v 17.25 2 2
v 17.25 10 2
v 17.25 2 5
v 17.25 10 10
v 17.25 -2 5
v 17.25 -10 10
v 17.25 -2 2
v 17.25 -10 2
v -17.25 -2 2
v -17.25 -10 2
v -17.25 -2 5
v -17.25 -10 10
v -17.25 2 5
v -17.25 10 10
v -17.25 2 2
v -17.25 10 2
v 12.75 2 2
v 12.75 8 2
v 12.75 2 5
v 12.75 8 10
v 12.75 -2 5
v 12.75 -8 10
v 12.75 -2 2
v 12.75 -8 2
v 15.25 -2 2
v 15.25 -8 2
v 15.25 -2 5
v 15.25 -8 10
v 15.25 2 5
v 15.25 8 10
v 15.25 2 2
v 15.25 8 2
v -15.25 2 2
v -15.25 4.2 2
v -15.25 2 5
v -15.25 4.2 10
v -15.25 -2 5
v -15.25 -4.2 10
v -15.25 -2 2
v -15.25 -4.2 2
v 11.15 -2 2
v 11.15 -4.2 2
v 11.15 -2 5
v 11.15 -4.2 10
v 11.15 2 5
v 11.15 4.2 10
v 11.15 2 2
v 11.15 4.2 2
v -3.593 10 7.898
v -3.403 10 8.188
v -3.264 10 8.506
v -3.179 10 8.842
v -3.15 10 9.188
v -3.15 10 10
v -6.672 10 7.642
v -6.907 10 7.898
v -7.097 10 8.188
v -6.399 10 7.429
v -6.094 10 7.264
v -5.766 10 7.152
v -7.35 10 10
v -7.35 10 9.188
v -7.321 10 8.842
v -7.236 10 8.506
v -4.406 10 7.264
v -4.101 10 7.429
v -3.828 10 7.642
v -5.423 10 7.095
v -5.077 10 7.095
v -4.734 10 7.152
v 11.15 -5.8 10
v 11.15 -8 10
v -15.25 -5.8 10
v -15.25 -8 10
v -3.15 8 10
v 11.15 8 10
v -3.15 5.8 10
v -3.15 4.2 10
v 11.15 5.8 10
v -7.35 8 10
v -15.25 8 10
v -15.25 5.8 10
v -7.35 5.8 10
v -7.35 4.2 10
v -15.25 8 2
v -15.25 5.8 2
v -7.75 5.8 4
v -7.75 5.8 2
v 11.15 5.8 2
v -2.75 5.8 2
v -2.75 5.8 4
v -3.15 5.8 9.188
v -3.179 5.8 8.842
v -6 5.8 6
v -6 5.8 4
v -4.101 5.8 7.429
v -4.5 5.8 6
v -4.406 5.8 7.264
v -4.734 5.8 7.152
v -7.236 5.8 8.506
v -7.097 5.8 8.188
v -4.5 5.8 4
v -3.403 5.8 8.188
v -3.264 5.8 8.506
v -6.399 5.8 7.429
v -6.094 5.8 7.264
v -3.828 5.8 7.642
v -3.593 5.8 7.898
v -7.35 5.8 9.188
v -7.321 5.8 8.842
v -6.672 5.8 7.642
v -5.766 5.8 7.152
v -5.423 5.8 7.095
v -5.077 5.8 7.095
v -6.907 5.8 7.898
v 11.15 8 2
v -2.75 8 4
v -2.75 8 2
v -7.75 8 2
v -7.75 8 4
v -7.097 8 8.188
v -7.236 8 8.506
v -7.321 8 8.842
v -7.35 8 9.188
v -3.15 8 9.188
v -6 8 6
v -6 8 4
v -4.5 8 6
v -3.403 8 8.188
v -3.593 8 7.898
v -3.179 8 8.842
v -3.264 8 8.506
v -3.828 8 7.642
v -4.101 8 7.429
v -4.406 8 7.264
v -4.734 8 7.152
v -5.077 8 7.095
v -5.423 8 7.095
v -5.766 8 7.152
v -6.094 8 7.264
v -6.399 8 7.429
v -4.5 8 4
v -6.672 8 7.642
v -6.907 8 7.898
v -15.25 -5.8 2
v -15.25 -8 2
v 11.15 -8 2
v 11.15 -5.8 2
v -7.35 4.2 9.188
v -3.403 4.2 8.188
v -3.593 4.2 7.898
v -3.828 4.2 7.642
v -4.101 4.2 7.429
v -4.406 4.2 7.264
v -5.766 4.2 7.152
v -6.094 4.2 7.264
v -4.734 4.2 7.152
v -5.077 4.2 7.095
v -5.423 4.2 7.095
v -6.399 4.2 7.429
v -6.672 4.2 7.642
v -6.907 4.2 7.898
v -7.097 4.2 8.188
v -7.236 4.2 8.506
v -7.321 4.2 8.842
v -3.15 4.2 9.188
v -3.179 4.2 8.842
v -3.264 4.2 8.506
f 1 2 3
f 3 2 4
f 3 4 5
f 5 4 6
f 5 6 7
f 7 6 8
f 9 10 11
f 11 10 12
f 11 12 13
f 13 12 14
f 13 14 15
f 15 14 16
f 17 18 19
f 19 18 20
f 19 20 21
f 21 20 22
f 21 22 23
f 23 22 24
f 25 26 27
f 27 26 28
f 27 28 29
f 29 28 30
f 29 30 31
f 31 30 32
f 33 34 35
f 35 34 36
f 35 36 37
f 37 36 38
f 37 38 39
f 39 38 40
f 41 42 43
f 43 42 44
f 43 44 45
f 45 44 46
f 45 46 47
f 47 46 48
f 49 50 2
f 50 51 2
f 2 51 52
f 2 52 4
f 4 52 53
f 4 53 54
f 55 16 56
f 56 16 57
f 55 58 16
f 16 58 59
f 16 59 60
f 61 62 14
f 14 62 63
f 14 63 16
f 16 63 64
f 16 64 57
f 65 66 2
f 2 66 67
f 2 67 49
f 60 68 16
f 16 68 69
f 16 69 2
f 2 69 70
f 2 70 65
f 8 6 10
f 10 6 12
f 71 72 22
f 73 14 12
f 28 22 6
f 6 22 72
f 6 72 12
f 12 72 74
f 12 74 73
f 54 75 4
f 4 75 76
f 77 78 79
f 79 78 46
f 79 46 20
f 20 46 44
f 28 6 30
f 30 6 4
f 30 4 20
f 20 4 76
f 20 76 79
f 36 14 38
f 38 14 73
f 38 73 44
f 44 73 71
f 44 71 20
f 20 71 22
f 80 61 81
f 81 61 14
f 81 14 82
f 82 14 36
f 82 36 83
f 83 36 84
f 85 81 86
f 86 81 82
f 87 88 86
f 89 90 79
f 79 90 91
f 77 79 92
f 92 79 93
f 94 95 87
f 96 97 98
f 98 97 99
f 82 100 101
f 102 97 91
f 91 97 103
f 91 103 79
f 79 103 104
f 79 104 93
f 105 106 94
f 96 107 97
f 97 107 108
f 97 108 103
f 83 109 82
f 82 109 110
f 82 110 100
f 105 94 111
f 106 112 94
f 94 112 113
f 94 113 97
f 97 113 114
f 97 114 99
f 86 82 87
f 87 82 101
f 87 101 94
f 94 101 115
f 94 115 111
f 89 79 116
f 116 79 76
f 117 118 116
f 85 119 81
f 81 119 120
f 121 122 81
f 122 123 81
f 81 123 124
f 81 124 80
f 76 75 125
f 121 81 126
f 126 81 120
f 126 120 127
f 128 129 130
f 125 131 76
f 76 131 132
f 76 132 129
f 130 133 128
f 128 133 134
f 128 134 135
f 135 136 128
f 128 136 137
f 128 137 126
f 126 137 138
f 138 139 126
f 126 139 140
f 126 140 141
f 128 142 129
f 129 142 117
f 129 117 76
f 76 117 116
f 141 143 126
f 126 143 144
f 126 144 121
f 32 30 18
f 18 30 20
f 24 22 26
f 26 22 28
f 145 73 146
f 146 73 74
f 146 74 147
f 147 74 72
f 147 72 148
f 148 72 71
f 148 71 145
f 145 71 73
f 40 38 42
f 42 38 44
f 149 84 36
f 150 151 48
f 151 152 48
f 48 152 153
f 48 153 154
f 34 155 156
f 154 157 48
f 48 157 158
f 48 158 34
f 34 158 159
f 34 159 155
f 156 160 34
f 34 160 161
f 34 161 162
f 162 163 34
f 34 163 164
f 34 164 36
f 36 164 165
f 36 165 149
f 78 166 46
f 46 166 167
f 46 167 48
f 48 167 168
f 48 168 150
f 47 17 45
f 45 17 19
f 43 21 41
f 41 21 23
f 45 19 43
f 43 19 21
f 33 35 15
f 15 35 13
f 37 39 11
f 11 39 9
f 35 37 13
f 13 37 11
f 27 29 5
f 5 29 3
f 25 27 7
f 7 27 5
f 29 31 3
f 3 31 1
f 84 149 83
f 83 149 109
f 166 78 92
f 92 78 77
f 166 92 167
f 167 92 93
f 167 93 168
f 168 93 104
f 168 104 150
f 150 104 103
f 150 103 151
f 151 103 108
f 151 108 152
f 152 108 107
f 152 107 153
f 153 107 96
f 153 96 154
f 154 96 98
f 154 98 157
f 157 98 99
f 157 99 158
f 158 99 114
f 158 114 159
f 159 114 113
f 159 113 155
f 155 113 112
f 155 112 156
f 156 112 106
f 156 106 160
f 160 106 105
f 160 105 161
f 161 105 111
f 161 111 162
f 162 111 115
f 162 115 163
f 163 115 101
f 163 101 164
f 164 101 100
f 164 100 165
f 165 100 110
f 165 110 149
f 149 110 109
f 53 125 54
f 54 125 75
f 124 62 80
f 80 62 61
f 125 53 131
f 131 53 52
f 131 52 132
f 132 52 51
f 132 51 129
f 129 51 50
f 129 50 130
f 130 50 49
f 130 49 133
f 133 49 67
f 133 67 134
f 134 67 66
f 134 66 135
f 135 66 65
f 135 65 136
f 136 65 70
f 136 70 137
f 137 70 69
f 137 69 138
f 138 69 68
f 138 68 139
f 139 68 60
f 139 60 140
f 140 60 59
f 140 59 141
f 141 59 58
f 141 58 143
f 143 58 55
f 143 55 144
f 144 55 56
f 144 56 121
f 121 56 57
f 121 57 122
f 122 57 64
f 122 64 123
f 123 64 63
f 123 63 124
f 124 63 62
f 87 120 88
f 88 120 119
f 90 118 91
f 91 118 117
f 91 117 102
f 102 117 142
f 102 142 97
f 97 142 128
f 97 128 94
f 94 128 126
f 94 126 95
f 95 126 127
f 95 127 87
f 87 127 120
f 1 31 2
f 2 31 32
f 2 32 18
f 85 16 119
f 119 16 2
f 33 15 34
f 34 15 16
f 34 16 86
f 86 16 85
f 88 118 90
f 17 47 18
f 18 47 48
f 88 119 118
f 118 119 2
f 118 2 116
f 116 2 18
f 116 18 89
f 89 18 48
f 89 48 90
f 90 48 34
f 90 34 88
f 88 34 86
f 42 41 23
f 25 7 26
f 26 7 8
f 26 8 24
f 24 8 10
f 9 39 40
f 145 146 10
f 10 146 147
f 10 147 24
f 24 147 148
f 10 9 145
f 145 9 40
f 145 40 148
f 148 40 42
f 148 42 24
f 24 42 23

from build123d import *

# Parameters (mm, degrees)
SKETCH1_W               = 34.5
SKETCH1_H               = 20
BOSS_EXTRUDE1_DEPTH     = 2
SKETCH2_W               = 26.4
SKETCH2_H               = 2.2
SKETCH2_W_2             = 2.5
SKETCH2_H_2             = 16
SKETCH2_H_3             = 8.4
BOSS_EXTRUDE2_DEPTH     = 10
CUT_EXTRUDE1_DEPTH      = 17.5
CUT_EXTRUDE1_DEPTH_BACK = 17.5
SKETCH3_W               = 3
SKETCH3_H               = 4
CUT_EXTRUDE2_DEPTH      = 10
FILLET1_R               = 2
BOSS_EXTRUDE3_DEPTH     = 5
SKETCH7_W               = 34.5
SKETCH7_H               = 20
CUT_EXTRUDE3_DEPTH      = 2


with BuildPart() as part:
    # Sketch1 → Boss-Extrude1 (new body)
    with BuildSketch(Plane.XY):
        Rectangle(SKETCH1_W, SKETCH1_H)
    extrude(amount=BOSS_EXTRUDE1_DEPTH)

    # Sketch2 → Boss-Extrude2 (add)
    with BuildSketch(Plane.XY):
        Polygon((-17.25, 10), (17.25, 10), (17.25, 8), (17.25, -8), (17.25, -10), (-17.25, -10), align=None)
        with Locations((-2.05, 6.9)):
            Rectangle(SKETCH2_W, SKETCH2_H, mode=Mode.SUBTRACT)
        with Locations((-2.05, -6.9)):
            Rectangle(SKETCH2_W, SKETCH2_H, mode=Mode.SUBTRACT)
        with Locations((14, 0)):
            Rectangle(SKETCH2_W_2, SKETCH2_H_2, mode=Mode.SUBTRACT)
        with Locations((-2.05, 0)):
            Rectangle(SKETCH2_W, SKETCH2_H_3, mode=Mode.SUBTRACT)
    extrude(amount=BOSS_EXTRUDE2_DEPTH)

    # Sketch3 → Cut-Extrude1 (cut, two sides: drawn at the far end of the back side and taken through both)
    with BuildSketch(Plane(origin=(0, 0, 0), x_dir=(0, 0, -1), z_dir=(1, 0, 0)).offset(-CUT_EXTRUDE1_DEPTH_BACK)):
        with Locations((-3.5, 0)):
            Rectangle(SKETCH3_W, SKETCH3_H)
    extrude(amount=CUT_EXTRUDE1_DEPTH + CUT_EXTRUDE1_DEPTH_BACK, mode=Mode.SUBTRACT)

    # Sketch4 → Cut-Extrude2 (cut)
    with BuildSketch(Plane(origin=(0, 10, 0), x_dir=(1, 0, 0), z_dir=(0, 1, 0))):
        with BuildLine():
            Line((-7.35, -9.1875), (-7.35, -11.2875))
            Line((-7.35, -11.2875), (-3.15, -11.2875))
            Line((-3.15, -11.2875), (-3.15, -9.1875))
            ThreePointArc((-3.15, -9.1875), (-5.25, -7.0875), (-7.35, -9.1875))
        make_face()
    extrude(amount=-CUT_EXTRUDE2_DEPTH, mode=Mode.SUBTRACT)

    # Fillet1
    fillet1_edges = [part.edges().sort_by_distance(p)[0] for p in [
        (0, -10, 0),
        (0, 10, 0),
    ]]
    fillet(fillet1_edges, radius=FILLET1_R)

    # Sketch6 → Boss-Extrude3 (add)
    with BuildSketch(Plane(origin=(0, 10, 0), x_dir=(1, 0, 0), z_dir=(0, 1, 0))):
        Polygon((-7.75, -2), (-2.75, -2), (-2.75, -4), (-4.5, -4), (-4.5, -6), (-6, -6), (-6, -4), (-7.75, -4), align=None)
    extrude(amount=-BOSS_EXTRUDE3_DEPTH)

    # Sketch7 → Cut-Extrude3 (cut)
    with BuildSketch(Plane.XY):
        Rectangle(SKETCH7_W, SKETCH7_H)
    extrude(amount=CUT_EXTRUDE3_DEPTH, mode=Mode.SUBTRACT)


solid = part.part
